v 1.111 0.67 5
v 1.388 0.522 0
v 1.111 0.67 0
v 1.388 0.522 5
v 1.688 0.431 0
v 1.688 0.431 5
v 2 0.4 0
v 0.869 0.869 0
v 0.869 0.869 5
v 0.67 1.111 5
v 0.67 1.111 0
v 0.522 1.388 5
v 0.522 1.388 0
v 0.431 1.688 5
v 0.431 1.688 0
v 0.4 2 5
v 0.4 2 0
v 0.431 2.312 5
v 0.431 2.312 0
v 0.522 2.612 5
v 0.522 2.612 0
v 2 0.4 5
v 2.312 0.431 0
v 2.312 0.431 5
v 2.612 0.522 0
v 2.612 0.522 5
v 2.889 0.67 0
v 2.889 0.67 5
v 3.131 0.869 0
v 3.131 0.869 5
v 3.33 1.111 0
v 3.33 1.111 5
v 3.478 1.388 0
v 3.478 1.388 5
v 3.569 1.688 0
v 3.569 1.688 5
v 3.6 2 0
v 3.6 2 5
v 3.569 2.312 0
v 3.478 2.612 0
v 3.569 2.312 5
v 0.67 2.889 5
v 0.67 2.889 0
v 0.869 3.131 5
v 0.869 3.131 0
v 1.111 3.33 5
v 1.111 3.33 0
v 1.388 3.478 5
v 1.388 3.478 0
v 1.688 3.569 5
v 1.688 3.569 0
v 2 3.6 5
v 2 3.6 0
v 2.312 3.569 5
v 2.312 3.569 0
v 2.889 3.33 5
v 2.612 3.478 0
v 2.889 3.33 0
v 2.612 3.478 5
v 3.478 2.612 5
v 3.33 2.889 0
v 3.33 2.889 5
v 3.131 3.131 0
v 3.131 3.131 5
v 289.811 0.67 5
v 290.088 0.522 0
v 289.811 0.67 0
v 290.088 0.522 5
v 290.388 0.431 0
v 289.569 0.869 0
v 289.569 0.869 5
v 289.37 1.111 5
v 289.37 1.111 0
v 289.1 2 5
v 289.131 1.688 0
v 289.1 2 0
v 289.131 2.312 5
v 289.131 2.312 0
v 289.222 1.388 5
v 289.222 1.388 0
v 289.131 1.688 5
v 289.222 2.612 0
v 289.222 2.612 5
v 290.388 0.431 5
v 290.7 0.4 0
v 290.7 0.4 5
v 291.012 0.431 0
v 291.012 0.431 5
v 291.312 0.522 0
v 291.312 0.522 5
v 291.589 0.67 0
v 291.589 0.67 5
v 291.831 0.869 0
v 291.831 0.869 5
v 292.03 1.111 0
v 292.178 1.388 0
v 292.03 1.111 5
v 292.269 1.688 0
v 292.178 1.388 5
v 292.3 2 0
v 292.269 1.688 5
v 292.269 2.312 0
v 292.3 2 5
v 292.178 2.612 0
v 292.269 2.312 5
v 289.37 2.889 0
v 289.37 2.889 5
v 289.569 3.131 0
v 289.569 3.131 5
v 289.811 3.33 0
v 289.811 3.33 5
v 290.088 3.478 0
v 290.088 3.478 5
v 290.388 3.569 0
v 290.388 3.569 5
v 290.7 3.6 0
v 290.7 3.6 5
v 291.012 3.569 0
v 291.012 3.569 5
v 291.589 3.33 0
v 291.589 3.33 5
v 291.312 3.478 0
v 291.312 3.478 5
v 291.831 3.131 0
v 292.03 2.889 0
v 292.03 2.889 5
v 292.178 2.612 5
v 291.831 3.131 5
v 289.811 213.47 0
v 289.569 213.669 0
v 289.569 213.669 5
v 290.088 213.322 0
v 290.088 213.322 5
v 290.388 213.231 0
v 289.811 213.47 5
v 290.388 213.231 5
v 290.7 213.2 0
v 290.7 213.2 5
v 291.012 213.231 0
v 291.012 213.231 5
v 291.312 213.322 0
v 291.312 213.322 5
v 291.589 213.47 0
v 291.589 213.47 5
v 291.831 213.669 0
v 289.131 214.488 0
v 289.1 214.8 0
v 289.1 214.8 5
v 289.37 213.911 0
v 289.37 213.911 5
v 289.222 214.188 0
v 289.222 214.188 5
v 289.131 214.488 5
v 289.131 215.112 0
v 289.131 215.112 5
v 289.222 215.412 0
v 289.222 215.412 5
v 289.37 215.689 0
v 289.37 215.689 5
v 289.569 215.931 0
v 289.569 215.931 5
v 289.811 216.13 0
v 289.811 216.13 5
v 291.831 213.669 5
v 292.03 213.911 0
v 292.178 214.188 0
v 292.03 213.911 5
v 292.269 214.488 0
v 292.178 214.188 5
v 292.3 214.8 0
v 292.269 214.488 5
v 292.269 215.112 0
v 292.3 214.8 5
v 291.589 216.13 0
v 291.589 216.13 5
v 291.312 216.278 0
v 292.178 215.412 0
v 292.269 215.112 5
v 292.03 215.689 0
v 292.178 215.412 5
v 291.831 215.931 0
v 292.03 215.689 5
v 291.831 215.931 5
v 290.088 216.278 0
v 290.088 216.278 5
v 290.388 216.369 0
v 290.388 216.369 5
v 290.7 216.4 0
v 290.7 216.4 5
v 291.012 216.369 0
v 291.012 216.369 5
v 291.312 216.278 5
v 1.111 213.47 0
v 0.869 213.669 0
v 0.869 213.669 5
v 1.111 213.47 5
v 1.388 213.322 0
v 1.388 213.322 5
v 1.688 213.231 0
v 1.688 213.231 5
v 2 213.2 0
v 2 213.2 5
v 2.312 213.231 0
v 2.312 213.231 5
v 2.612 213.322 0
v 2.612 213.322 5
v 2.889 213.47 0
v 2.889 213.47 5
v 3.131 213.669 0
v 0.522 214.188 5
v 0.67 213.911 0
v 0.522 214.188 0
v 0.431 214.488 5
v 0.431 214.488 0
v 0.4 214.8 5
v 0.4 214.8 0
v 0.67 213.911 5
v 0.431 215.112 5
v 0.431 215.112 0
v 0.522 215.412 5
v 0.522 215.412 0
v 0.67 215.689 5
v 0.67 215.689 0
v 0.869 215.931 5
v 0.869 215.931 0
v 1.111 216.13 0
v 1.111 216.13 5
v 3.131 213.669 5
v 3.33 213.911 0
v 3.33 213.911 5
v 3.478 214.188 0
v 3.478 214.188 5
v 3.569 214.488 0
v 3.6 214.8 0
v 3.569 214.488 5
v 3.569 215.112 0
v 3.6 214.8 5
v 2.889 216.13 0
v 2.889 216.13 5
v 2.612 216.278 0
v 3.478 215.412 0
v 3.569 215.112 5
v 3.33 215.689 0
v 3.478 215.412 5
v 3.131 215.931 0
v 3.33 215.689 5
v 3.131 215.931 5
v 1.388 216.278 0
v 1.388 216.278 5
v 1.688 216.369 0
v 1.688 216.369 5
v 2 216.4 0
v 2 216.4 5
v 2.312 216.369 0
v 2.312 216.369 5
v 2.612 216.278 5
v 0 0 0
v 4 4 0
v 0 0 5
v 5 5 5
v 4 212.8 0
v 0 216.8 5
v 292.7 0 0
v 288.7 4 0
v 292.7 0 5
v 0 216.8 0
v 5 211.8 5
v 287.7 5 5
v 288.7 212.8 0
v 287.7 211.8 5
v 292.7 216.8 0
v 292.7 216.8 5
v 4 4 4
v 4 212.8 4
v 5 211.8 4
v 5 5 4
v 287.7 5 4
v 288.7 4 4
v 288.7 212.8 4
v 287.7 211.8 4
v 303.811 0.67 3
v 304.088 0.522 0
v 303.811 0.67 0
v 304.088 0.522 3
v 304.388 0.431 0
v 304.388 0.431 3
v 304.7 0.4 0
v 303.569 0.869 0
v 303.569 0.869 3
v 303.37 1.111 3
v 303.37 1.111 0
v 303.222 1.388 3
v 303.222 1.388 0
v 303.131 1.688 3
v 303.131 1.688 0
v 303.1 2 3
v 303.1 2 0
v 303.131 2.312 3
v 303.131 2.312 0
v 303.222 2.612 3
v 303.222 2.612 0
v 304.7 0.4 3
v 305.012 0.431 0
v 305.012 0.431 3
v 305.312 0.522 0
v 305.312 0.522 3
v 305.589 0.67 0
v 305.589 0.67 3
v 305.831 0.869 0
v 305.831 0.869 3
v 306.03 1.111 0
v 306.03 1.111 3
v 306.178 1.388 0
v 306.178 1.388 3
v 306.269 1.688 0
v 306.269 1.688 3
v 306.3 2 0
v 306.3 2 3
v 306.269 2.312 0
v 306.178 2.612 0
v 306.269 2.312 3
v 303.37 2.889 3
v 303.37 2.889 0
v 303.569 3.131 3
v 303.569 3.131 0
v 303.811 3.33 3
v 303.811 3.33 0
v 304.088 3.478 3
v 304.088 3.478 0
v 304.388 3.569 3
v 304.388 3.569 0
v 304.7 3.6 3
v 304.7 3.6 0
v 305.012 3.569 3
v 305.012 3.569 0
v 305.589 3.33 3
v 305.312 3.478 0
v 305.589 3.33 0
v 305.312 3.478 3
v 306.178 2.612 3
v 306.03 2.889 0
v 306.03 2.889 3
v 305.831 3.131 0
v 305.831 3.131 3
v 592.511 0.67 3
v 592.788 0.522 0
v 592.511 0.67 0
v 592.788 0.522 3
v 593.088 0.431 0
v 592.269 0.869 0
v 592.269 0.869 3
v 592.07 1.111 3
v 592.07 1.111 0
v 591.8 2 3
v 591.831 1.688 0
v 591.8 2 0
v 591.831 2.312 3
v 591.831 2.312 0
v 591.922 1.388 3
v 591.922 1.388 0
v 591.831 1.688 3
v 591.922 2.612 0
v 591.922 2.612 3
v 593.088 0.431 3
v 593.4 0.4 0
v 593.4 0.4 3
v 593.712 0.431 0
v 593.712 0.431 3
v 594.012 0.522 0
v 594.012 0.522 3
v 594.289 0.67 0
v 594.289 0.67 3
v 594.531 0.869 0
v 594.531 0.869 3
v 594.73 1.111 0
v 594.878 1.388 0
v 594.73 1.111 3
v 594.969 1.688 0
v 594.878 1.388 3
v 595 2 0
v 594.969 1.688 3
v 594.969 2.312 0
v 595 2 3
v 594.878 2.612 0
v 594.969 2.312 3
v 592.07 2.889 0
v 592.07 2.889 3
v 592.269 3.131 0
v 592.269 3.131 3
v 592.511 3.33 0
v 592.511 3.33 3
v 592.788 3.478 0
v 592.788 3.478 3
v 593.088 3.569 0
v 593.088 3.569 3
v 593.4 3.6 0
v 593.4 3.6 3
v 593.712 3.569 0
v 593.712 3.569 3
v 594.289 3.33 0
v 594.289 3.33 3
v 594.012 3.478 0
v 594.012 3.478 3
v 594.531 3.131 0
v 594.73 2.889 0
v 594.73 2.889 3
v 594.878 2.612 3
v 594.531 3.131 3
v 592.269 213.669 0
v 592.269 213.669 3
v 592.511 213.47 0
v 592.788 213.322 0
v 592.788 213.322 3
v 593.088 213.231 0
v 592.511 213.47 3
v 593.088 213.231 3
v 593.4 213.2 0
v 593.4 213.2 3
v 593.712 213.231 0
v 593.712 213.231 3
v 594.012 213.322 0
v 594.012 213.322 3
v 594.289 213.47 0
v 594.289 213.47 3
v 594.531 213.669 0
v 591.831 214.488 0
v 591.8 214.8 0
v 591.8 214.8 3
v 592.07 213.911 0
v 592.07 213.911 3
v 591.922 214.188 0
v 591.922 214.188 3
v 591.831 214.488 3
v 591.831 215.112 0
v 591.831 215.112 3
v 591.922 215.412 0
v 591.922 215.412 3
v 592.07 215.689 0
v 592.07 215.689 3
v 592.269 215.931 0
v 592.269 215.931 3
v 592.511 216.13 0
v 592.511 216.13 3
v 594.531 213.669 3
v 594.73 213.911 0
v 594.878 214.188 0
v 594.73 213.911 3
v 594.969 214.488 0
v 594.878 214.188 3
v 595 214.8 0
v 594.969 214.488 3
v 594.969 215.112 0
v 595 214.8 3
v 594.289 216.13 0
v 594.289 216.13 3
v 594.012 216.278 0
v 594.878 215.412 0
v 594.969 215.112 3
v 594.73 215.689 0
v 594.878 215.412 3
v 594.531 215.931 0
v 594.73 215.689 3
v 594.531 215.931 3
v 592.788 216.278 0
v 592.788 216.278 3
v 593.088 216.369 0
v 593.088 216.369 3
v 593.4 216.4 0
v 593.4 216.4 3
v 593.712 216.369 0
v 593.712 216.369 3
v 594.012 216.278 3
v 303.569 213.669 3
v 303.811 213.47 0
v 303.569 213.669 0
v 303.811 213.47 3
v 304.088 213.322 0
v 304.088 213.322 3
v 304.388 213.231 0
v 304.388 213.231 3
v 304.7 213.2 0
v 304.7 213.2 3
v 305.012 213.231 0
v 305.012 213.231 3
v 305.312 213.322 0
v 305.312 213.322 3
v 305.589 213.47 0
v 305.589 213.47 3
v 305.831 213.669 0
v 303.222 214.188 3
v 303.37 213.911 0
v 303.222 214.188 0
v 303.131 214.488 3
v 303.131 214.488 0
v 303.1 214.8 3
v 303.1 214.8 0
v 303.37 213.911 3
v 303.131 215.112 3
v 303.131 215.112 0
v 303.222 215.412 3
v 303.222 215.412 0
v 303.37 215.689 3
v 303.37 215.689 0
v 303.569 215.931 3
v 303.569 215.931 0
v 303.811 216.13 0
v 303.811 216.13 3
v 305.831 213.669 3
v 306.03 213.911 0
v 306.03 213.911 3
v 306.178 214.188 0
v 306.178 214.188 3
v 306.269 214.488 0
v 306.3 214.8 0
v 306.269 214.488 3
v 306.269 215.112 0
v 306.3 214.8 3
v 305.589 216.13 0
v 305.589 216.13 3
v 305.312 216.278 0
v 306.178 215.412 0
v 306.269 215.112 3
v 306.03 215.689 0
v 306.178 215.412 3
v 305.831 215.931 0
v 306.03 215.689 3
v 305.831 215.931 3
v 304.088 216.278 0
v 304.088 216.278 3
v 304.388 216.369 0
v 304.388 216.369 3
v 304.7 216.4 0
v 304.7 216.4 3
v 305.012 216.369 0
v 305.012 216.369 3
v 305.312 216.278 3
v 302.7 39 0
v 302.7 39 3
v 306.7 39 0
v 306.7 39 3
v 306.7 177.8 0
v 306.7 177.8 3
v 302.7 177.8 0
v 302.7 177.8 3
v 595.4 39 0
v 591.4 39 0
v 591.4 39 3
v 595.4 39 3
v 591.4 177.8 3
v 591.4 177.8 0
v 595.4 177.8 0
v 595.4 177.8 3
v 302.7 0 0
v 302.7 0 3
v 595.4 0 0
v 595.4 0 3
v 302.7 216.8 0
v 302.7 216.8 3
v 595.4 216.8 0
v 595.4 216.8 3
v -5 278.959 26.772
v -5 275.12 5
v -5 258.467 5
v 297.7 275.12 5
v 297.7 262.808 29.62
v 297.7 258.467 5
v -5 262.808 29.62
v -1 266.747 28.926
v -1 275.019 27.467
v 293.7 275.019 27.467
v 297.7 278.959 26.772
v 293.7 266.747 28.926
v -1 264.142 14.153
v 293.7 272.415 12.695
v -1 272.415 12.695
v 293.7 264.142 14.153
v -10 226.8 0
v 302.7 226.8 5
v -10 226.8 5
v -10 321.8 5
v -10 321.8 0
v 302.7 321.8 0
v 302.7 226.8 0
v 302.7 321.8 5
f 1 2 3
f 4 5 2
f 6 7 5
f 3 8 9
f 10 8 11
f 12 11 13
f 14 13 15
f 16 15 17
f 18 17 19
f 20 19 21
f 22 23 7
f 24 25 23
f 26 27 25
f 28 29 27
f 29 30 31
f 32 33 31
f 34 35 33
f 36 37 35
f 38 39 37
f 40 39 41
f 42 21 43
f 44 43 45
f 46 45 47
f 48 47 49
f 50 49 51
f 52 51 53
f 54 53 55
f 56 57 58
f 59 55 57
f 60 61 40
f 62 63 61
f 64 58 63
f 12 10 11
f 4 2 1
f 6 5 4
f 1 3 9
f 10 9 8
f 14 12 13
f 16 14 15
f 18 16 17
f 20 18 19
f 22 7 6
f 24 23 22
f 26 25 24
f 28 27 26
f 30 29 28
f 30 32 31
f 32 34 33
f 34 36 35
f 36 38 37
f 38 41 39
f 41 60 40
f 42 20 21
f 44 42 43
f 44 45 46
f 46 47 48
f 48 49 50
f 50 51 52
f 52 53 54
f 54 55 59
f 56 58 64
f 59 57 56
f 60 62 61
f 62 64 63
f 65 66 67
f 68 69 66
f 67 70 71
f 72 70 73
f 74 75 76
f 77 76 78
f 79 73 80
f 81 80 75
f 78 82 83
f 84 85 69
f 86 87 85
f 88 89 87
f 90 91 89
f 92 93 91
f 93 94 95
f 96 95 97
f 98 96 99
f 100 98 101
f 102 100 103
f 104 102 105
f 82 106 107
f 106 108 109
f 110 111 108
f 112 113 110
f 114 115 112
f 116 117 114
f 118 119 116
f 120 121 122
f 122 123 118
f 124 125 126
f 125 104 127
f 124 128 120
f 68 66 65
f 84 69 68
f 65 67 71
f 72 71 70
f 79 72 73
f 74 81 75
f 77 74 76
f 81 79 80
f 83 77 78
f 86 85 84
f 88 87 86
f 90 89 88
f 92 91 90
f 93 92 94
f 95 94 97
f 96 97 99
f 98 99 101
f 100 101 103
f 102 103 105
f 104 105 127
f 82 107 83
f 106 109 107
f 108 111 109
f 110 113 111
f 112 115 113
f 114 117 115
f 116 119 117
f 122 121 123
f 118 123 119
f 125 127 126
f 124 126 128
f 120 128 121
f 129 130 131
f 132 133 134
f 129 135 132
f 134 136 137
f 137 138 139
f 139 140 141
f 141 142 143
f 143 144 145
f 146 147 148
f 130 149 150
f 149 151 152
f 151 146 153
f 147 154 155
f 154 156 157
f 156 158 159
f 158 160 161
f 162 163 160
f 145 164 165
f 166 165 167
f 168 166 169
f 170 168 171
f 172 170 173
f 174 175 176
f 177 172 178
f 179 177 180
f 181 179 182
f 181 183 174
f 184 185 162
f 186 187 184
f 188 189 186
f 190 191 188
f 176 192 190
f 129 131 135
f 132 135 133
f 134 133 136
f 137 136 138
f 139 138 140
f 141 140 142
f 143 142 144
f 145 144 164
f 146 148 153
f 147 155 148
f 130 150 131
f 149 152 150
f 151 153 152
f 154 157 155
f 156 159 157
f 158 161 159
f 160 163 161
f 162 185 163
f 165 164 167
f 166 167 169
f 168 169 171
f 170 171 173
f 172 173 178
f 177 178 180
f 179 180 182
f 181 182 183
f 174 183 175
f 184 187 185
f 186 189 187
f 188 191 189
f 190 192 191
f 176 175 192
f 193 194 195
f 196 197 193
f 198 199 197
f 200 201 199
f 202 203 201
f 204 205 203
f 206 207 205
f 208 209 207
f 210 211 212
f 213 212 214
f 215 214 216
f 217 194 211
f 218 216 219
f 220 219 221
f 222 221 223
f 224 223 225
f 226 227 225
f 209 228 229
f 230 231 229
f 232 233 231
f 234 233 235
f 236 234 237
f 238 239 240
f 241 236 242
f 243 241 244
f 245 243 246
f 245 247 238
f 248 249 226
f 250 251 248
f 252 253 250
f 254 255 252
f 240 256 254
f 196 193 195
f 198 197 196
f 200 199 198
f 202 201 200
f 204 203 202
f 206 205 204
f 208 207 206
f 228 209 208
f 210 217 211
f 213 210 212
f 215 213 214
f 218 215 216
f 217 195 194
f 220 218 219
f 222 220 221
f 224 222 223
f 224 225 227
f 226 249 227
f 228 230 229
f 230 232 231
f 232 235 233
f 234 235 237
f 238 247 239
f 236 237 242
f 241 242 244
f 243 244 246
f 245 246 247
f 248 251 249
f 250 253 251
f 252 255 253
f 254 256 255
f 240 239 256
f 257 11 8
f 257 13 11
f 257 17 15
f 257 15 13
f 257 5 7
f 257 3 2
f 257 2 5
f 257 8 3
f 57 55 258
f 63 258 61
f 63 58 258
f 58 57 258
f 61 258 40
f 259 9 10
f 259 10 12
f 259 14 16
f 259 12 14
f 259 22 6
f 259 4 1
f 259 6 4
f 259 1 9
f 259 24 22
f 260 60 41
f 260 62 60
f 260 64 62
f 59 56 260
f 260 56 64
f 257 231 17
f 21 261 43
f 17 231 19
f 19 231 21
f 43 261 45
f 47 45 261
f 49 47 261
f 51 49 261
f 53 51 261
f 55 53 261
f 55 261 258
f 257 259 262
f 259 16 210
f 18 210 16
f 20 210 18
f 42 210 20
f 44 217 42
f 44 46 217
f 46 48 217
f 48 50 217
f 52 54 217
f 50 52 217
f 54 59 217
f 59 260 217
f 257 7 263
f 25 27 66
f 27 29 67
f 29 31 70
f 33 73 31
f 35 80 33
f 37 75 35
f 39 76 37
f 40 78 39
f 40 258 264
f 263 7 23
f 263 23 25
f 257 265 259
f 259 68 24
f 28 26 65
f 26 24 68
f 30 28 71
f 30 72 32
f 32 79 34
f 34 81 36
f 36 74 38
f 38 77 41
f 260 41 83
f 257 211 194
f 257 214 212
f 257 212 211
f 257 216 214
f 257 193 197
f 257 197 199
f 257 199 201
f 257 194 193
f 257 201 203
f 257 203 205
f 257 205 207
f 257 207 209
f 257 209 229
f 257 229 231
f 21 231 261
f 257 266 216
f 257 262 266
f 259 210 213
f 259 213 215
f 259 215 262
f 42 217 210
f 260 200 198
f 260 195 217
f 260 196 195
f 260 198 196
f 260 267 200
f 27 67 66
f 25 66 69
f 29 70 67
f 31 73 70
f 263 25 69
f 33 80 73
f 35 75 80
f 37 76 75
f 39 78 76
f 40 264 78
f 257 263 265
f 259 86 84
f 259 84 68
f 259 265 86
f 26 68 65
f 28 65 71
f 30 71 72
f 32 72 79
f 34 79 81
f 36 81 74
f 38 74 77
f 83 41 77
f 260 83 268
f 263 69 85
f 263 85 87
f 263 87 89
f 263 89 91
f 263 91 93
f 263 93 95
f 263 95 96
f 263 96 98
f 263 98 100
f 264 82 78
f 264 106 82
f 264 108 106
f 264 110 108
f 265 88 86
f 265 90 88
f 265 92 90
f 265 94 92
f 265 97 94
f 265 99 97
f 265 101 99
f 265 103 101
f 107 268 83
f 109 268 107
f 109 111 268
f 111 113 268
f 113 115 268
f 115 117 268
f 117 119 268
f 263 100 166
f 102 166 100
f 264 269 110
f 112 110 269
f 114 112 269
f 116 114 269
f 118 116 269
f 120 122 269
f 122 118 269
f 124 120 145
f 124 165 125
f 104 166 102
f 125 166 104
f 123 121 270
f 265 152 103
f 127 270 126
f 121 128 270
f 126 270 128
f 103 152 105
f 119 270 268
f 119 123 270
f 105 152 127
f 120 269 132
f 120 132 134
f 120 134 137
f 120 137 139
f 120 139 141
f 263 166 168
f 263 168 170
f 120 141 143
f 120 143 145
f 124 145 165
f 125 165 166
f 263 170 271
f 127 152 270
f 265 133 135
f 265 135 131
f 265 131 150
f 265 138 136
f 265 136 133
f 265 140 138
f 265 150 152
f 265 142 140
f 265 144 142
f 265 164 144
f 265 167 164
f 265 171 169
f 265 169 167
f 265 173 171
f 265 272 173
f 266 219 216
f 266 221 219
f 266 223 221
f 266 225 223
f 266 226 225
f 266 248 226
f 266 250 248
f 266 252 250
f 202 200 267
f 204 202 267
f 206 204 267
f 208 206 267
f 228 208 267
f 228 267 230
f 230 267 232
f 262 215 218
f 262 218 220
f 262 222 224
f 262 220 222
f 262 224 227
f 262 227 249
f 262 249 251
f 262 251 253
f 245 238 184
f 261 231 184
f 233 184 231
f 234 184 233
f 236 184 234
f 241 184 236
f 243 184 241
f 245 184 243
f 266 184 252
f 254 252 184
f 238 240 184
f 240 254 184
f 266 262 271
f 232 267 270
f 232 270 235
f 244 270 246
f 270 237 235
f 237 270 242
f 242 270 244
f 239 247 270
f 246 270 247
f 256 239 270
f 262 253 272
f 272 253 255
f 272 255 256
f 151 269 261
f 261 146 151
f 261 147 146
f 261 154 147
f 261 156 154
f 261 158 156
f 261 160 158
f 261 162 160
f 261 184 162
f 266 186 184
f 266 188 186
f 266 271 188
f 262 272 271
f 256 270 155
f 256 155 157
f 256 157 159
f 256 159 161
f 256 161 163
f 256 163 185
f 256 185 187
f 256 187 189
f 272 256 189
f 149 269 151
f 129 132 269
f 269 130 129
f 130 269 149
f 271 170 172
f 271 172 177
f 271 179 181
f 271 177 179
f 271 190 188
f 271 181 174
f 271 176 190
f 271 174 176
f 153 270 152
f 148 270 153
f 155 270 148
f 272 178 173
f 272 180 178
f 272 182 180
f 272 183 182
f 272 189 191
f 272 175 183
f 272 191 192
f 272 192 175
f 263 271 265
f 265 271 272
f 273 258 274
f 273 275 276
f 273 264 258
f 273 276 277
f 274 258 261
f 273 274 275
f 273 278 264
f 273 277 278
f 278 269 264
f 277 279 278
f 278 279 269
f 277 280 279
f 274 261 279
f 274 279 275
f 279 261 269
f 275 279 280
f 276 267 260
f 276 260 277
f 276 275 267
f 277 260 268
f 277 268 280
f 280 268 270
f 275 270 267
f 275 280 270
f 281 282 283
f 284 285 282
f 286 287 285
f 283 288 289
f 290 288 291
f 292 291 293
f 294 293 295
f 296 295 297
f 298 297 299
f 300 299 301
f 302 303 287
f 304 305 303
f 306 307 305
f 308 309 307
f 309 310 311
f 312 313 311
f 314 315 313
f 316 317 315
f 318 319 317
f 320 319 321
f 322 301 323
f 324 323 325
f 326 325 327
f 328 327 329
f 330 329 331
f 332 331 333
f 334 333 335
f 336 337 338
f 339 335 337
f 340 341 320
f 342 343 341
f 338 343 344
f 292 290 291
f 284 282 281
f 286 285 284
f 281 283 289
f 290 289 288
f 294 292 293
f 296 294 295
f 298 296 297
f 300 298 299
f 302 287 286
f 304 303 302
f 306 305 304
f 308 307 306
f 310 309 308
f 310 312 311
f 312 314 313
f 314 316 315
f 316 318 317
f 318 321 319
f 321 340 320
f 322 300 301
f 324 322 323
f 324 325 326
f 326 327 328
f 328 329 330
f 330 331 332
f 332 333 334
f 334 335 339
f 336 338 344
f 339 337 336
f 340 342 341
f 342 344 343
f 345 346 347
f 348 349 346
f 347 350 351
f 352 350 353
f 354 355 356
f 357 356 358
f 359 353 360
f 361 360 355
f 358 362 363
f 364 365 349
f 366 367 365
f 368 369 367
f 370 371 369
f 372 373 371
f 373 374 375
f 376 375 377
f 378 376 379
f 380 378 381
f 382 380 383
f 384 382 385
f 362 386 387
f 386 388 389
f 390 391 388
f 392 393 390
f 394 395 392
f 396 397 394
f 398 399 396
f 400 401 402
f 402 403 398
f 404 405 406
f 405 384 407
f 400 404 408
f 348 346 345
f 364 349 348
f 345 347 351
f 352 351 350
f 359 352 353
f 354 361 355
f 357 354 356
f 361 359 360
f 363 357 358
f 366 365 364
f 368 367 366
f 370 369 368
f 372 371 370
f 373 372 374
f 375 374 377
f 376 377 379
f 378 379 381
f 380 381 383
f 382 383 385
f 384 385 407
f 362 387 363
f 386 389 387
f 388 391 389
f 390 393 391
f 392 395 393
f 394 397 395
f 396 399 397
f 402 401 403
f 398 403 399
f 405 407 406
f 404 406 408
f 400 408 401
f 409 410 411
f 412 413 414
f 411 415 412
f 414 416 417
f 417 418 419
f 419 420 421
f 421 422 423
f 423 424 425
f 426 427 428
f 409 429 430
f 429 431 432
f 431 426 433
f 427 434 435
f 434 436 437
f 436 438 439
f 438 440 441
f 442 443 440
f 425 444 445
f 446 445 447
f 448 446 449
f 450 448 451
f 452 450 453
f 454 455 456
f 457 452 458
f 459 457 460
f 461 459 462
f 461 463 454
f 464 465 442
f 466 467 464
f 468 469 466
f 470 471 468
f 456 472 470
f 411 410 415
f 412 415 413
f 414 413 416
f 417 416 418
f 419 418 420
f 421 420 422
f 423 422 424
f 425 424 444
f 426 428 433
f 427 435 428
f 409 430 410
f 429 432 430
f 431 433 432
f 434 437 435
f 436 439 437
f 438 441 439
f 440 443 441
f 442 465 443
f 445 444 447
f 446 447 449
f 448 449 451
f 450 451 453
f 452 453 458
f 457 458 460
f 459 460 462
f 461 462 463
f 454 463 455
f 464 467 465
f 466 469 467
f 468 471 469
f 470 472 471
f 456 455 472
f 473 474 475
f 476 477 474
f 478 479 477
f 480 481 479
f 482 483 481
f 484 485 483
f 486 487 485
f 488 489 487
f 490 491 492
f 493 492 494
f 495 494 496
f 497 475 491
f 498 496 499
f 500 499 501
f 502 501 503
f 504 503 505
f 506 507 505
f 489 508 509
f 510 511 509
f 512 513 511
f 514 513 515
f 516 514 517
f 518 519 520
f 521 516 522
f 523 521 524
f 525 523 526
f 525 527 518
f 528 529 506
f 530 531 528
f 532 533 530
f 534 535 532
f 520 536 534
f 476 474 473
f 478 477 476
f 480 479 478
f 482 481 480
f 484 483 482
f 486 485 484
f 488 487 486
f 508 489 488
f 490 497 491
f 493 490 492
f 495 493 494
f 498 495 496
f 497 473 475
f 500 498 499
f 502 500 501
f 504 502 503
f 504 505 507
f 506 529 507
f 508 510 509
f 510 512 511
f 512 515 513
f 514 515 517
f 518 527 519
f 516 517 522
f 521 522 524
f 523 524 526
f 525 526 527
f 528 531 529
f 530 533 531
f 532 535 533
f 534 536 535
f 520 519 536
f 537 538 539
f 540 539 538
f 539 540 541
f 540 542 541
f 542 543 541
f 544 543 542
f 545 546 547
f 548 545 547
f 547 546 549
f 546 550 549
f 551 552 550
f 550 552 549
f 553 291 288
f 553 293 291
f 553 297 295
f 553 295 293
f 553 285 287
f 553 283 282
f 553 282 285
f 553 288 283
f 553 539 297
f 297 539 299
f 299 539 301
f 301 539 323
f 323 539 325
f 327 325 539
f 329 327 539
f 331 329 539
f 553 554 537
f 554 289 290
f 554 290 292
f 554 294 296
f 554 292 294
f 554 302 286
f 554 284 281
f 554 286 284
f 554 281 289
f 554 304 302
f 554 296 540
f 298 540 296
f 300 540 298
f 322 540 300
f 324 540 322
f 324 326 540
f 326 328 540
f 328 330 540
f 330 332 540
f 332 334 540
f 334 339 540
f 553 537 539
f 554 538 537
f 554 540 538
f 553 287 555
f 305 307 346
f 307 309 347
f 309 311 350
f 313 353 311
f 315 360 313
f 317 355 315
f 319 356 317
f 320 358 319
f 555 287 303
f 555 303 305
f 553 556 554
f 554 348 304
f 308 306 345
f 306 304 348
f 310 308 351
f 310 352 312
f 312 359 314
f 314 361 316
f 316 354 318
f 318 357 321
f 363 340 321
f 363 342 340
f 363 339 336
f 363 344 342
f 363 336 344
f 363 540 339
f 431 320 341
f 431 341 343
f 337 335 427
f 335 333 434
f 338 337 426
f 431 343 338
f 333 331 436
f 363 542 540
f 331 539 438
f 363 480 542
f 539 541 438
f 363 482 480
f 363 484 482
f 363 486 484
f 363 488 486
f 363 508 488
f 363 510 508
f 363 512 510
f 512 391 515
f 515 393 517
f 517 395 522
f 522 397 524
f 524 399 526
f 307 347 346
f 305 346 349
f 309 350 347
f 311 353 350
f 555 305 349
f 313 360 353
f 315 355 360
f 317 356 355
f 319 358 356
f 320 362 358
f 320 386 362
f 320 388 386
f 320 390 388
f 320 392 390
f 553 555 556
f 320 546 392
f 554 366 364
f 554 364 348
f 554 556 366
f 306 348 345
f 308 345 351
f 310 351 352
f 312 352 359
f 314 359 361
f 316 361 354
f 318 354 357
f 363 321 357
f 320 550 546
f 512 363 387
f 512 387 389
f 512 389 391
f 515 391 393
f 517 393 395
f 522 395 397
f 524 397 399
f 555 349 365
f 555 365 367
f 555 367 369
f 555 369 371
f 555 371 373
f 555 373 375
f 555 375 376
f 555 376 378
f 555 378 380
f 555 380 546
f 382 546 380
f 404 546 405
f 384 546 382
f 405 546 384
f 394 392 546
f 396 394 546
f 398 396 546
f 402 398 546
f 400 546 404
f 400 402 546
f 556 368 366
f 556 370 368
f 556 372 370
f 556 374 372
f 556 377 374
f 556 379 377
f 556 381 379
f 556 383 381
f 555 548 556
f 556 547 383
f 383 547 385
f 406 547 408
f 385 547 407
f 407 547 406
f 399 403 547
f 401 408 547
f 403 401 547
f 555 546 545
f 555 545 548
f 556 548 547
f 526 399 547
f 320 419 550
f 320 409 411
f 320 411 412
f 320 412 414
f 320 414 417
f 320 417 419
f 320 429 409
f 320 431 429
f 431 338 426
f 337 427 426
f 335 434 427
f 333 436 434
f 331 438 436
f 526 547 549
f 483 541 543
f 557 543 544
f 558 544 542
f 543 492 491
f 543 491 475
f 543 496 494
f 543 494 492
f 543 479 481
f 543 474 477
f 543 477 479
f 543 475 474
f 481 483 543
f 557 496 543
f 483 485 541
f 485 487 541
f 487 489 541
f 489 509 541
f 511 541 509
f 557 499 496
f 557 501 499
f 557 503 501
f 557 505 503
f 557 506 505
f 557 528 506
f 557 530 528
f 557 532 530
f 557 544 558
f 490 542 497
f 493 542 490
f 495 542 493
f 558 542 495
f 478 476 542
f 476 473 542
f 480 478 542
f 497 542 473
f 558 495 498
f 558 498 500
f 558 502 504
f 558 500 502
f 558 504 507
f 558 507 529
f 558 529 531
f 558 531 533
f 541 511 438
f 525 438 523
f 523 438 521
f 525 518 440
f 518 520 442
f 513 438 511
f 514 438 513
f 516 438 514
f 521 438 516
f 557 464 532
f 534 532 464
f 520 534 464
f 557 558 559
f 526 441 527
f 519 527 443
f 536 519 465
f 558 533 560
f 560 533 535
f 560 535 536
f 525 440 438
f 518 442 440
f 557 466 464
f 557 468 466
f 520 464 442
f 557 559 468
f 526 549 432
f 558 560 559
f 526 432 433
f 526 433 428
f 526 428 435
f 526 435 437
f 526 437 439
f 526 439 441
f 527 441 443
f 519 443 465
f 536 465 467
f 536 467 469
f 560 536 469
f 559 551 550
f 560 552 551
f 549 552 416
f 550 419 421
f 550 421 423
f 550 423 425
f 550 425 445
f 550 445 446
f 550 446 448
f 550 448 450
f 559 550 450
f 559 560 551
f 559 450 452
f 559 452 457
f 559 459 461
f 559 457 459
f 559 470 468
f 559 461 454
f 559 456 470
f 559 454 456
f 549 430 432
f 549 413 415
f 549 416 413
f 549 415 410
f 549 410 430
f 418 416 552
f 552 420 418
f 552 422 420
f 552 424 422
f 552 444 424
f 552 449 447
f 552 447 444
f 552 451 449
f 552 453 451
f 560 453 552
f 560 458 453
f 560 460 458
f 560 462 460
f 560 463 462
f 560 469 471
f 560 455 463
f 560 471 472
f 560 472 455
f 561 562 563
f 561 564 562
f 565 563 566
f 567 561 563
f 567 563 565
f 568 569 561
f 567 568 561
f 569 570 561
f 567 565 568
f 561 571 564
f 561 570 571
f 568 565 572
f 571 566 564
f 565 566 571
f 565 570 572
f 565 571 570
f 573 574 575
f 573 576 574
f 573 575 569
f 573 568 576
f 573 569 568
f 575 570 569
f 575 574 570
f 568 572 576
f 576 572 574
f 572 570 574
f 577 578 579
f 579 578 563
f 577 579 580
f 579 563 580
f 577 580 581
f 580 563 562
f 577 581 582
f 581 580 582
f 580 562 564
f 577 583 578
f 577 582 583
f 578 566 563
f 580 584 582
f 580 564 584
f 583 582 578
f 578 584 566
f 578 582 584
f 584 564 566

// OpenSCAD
// Seeed Spectra6 13.3" ePaper display case
// Front frame + back panel sandwich; display sits between them.
//
// Dimensions (mm):
//   Visible cutout:     270.4 x 202.8
//   Display (incl bezel): 284.7 x 208.8  (+14.3 x +6 beyond cutout)
//   Case outer:           292.7 x 216.8  (+8 x +8 beyond display)

// --- Display & case geometry ---
cutout_w = 270.4;
cutout_h = 202.8;
bezel_extra_w = 14.3;
bezel_extra_h = 6;
display_w = cutout_w + bezel_extra_w;
display_h = cutout_h + bezel_extra_h;
case_margin = 8;  // added to each outer dimension (4 mm per side)
case_w = display_w + case_margin;
case_h = display_h + case_margin;
side_margin = case_margin / 2;

// Cutout centered on display; display centered in case.
display_x = side_margin;
display_y = side_margin;
cutout_x = display_x + (display_w - cutout_w) / 2;
cutout_y = display_y + (display_h - cutout_h) / 2;

// --- Part thickness ---
frame_depth = 5;
back_depth = 3;
case_thickness = frame_depth + back_depth;

// --- Frame lip (display pocket) ---
lip_h = 1;
lip_t = 1;
pocket_depth = frame_depth - lip_h;

// --- Fasteners (M3) ---
screw_hole_d = 3.2;
screw_inset = 2;  // hole center from case edge, in the 4 mm margin outside display

// --- Back ribbon cable notches (landscape: long edge horizontal) ---
cable_notch_inset = 39;  // from top and bottom edges
cable_notch_w = side_margin;  // frame margin beyond display
cable_notch_y = cable_notch_inset;
cable_notch_h = case_h - 2 * cable_notch_inset;

module cable_notches(depth) {
    translate([-0.01, cable_notch_y, -0.01])
        cube([cable_notch_w + 0.01, cable_notch_h, depth + 0.02]);
    translate([case_w - cable_notch_w, cable_notch_y, -0.01])
        cube([cable_notch_w + 0.01, cable_notch_h, depth + 0.02]);
}

// --- Stand base ---
stand_angle = 80;  // degrees from horizontal
stand_slot_clearance = 0.4;
stand_wall_t = 4;
stand_slot_length = case_w + 10;  // long bottom edge, landscape
stand_heel_h = 25;
stand_slot_depth = 15;
stand_foot_depth = 95;  // total Y extent: 1/3 behind slot, 2/3 in front
stand_foot_back = stand_foot_depth / 3;
stand_foot_front = 2 * stand_foot_depth / 3;
stand_foot_w = stand_slot_length + 10;
stand_base_t = 5;

// --- Render control ---
part = "all";  // [front, back, base, all]
layout_gap = 10;

module screw_holes(height) {
    positions = [
        [screw_inset, screw_inset],
        [case_w - screw_inset, screw_inset],
        [case_w - screw_inset, case_h - screw_inset],
        [screw_inset, case_h - screw_inset],
    ];
    for (pos = positions)
        translate([pos[0], pos[1], -0.01])
            cylinder(h = height + 0.02, d = screw_hole_d, $fn = 32);
}

module front_frame() {
    difference() {
        cube([case_w, case_h, frame_depth]);
        translate([cutout_x, cutout_y, -0.01])
            cube([cutout_w, cutout_h, frame_depth + 0.02]);
        translate([display_x, display_y, -0.01])
            cube([display_w, display_h, pocket_depth + 0.01]);
        translate([display_x + lip_t, display_y + lip_t, pocket_depth - 0.01])
            cube([display_w - 2 * lip_t, display_h - 2 * lip_t, lip_h + 0.02]);
        screw_holes(frame_depth);
    }
}

module back_panel() {
    difference() {
        cube([case_w, case_h, back_depth]);
        screw_holes(back_depth);
        cable_notches(back_depth);
    }
}

// Foot with a vertical slot (opens upward) sized for the frame bottom edge.
// Landscape: long edge (case_w) in slot, leans back over case_h.
module stand_base(angle = stand_angle) {
    slot_w = case_thickness + stand_slot_clearance;
    tilt = angle - 90;  // vertical slot (90°) → desired lean

    // Foot: 1/3 behind slot (−Y), 2/3 in front (+Y) where display leans.
    translate([-(stand_foot_w - case_w) / 2, -stand_foot_back, 0])
        cube([stand_foot_w, stand_foot_depth, stand_base_t]);

    // Slot at the 1/3 / 2/3 boundary; runs along X, slides in from +Z.
    translate([-(stand_slot_length - case_w) / 2, 0, stand_base_t])
        rotate([tilt, 0, 0])
            difference() {
                cube([stand_slot_length, slot_w + 2 * stand_wall_t, stand_heel_h]);
                translate([
                    stand_wall_t,
                    stand_wall_t,
                    stand_heel_h - stand_slot_depth,
                ])
                    cube([
                        stand_slot_length - 2 * stand_wall_t,
                        slot_w,
                        stand_slot_depth + 0.02,
                    ]);
            }
}

if (part == "all") {
    front_frame();
    translate([case_w + layout_gap, 0, 0])
        back_panel();
    translate([0, case_h + layout_gap + stand_foot_back, 0])
        stand_base();
} else if (part == "front") {
    front_frame();
} else if (part == "back") {
    back_panel();
} else if (part == "base") {
    stand_base();
}
